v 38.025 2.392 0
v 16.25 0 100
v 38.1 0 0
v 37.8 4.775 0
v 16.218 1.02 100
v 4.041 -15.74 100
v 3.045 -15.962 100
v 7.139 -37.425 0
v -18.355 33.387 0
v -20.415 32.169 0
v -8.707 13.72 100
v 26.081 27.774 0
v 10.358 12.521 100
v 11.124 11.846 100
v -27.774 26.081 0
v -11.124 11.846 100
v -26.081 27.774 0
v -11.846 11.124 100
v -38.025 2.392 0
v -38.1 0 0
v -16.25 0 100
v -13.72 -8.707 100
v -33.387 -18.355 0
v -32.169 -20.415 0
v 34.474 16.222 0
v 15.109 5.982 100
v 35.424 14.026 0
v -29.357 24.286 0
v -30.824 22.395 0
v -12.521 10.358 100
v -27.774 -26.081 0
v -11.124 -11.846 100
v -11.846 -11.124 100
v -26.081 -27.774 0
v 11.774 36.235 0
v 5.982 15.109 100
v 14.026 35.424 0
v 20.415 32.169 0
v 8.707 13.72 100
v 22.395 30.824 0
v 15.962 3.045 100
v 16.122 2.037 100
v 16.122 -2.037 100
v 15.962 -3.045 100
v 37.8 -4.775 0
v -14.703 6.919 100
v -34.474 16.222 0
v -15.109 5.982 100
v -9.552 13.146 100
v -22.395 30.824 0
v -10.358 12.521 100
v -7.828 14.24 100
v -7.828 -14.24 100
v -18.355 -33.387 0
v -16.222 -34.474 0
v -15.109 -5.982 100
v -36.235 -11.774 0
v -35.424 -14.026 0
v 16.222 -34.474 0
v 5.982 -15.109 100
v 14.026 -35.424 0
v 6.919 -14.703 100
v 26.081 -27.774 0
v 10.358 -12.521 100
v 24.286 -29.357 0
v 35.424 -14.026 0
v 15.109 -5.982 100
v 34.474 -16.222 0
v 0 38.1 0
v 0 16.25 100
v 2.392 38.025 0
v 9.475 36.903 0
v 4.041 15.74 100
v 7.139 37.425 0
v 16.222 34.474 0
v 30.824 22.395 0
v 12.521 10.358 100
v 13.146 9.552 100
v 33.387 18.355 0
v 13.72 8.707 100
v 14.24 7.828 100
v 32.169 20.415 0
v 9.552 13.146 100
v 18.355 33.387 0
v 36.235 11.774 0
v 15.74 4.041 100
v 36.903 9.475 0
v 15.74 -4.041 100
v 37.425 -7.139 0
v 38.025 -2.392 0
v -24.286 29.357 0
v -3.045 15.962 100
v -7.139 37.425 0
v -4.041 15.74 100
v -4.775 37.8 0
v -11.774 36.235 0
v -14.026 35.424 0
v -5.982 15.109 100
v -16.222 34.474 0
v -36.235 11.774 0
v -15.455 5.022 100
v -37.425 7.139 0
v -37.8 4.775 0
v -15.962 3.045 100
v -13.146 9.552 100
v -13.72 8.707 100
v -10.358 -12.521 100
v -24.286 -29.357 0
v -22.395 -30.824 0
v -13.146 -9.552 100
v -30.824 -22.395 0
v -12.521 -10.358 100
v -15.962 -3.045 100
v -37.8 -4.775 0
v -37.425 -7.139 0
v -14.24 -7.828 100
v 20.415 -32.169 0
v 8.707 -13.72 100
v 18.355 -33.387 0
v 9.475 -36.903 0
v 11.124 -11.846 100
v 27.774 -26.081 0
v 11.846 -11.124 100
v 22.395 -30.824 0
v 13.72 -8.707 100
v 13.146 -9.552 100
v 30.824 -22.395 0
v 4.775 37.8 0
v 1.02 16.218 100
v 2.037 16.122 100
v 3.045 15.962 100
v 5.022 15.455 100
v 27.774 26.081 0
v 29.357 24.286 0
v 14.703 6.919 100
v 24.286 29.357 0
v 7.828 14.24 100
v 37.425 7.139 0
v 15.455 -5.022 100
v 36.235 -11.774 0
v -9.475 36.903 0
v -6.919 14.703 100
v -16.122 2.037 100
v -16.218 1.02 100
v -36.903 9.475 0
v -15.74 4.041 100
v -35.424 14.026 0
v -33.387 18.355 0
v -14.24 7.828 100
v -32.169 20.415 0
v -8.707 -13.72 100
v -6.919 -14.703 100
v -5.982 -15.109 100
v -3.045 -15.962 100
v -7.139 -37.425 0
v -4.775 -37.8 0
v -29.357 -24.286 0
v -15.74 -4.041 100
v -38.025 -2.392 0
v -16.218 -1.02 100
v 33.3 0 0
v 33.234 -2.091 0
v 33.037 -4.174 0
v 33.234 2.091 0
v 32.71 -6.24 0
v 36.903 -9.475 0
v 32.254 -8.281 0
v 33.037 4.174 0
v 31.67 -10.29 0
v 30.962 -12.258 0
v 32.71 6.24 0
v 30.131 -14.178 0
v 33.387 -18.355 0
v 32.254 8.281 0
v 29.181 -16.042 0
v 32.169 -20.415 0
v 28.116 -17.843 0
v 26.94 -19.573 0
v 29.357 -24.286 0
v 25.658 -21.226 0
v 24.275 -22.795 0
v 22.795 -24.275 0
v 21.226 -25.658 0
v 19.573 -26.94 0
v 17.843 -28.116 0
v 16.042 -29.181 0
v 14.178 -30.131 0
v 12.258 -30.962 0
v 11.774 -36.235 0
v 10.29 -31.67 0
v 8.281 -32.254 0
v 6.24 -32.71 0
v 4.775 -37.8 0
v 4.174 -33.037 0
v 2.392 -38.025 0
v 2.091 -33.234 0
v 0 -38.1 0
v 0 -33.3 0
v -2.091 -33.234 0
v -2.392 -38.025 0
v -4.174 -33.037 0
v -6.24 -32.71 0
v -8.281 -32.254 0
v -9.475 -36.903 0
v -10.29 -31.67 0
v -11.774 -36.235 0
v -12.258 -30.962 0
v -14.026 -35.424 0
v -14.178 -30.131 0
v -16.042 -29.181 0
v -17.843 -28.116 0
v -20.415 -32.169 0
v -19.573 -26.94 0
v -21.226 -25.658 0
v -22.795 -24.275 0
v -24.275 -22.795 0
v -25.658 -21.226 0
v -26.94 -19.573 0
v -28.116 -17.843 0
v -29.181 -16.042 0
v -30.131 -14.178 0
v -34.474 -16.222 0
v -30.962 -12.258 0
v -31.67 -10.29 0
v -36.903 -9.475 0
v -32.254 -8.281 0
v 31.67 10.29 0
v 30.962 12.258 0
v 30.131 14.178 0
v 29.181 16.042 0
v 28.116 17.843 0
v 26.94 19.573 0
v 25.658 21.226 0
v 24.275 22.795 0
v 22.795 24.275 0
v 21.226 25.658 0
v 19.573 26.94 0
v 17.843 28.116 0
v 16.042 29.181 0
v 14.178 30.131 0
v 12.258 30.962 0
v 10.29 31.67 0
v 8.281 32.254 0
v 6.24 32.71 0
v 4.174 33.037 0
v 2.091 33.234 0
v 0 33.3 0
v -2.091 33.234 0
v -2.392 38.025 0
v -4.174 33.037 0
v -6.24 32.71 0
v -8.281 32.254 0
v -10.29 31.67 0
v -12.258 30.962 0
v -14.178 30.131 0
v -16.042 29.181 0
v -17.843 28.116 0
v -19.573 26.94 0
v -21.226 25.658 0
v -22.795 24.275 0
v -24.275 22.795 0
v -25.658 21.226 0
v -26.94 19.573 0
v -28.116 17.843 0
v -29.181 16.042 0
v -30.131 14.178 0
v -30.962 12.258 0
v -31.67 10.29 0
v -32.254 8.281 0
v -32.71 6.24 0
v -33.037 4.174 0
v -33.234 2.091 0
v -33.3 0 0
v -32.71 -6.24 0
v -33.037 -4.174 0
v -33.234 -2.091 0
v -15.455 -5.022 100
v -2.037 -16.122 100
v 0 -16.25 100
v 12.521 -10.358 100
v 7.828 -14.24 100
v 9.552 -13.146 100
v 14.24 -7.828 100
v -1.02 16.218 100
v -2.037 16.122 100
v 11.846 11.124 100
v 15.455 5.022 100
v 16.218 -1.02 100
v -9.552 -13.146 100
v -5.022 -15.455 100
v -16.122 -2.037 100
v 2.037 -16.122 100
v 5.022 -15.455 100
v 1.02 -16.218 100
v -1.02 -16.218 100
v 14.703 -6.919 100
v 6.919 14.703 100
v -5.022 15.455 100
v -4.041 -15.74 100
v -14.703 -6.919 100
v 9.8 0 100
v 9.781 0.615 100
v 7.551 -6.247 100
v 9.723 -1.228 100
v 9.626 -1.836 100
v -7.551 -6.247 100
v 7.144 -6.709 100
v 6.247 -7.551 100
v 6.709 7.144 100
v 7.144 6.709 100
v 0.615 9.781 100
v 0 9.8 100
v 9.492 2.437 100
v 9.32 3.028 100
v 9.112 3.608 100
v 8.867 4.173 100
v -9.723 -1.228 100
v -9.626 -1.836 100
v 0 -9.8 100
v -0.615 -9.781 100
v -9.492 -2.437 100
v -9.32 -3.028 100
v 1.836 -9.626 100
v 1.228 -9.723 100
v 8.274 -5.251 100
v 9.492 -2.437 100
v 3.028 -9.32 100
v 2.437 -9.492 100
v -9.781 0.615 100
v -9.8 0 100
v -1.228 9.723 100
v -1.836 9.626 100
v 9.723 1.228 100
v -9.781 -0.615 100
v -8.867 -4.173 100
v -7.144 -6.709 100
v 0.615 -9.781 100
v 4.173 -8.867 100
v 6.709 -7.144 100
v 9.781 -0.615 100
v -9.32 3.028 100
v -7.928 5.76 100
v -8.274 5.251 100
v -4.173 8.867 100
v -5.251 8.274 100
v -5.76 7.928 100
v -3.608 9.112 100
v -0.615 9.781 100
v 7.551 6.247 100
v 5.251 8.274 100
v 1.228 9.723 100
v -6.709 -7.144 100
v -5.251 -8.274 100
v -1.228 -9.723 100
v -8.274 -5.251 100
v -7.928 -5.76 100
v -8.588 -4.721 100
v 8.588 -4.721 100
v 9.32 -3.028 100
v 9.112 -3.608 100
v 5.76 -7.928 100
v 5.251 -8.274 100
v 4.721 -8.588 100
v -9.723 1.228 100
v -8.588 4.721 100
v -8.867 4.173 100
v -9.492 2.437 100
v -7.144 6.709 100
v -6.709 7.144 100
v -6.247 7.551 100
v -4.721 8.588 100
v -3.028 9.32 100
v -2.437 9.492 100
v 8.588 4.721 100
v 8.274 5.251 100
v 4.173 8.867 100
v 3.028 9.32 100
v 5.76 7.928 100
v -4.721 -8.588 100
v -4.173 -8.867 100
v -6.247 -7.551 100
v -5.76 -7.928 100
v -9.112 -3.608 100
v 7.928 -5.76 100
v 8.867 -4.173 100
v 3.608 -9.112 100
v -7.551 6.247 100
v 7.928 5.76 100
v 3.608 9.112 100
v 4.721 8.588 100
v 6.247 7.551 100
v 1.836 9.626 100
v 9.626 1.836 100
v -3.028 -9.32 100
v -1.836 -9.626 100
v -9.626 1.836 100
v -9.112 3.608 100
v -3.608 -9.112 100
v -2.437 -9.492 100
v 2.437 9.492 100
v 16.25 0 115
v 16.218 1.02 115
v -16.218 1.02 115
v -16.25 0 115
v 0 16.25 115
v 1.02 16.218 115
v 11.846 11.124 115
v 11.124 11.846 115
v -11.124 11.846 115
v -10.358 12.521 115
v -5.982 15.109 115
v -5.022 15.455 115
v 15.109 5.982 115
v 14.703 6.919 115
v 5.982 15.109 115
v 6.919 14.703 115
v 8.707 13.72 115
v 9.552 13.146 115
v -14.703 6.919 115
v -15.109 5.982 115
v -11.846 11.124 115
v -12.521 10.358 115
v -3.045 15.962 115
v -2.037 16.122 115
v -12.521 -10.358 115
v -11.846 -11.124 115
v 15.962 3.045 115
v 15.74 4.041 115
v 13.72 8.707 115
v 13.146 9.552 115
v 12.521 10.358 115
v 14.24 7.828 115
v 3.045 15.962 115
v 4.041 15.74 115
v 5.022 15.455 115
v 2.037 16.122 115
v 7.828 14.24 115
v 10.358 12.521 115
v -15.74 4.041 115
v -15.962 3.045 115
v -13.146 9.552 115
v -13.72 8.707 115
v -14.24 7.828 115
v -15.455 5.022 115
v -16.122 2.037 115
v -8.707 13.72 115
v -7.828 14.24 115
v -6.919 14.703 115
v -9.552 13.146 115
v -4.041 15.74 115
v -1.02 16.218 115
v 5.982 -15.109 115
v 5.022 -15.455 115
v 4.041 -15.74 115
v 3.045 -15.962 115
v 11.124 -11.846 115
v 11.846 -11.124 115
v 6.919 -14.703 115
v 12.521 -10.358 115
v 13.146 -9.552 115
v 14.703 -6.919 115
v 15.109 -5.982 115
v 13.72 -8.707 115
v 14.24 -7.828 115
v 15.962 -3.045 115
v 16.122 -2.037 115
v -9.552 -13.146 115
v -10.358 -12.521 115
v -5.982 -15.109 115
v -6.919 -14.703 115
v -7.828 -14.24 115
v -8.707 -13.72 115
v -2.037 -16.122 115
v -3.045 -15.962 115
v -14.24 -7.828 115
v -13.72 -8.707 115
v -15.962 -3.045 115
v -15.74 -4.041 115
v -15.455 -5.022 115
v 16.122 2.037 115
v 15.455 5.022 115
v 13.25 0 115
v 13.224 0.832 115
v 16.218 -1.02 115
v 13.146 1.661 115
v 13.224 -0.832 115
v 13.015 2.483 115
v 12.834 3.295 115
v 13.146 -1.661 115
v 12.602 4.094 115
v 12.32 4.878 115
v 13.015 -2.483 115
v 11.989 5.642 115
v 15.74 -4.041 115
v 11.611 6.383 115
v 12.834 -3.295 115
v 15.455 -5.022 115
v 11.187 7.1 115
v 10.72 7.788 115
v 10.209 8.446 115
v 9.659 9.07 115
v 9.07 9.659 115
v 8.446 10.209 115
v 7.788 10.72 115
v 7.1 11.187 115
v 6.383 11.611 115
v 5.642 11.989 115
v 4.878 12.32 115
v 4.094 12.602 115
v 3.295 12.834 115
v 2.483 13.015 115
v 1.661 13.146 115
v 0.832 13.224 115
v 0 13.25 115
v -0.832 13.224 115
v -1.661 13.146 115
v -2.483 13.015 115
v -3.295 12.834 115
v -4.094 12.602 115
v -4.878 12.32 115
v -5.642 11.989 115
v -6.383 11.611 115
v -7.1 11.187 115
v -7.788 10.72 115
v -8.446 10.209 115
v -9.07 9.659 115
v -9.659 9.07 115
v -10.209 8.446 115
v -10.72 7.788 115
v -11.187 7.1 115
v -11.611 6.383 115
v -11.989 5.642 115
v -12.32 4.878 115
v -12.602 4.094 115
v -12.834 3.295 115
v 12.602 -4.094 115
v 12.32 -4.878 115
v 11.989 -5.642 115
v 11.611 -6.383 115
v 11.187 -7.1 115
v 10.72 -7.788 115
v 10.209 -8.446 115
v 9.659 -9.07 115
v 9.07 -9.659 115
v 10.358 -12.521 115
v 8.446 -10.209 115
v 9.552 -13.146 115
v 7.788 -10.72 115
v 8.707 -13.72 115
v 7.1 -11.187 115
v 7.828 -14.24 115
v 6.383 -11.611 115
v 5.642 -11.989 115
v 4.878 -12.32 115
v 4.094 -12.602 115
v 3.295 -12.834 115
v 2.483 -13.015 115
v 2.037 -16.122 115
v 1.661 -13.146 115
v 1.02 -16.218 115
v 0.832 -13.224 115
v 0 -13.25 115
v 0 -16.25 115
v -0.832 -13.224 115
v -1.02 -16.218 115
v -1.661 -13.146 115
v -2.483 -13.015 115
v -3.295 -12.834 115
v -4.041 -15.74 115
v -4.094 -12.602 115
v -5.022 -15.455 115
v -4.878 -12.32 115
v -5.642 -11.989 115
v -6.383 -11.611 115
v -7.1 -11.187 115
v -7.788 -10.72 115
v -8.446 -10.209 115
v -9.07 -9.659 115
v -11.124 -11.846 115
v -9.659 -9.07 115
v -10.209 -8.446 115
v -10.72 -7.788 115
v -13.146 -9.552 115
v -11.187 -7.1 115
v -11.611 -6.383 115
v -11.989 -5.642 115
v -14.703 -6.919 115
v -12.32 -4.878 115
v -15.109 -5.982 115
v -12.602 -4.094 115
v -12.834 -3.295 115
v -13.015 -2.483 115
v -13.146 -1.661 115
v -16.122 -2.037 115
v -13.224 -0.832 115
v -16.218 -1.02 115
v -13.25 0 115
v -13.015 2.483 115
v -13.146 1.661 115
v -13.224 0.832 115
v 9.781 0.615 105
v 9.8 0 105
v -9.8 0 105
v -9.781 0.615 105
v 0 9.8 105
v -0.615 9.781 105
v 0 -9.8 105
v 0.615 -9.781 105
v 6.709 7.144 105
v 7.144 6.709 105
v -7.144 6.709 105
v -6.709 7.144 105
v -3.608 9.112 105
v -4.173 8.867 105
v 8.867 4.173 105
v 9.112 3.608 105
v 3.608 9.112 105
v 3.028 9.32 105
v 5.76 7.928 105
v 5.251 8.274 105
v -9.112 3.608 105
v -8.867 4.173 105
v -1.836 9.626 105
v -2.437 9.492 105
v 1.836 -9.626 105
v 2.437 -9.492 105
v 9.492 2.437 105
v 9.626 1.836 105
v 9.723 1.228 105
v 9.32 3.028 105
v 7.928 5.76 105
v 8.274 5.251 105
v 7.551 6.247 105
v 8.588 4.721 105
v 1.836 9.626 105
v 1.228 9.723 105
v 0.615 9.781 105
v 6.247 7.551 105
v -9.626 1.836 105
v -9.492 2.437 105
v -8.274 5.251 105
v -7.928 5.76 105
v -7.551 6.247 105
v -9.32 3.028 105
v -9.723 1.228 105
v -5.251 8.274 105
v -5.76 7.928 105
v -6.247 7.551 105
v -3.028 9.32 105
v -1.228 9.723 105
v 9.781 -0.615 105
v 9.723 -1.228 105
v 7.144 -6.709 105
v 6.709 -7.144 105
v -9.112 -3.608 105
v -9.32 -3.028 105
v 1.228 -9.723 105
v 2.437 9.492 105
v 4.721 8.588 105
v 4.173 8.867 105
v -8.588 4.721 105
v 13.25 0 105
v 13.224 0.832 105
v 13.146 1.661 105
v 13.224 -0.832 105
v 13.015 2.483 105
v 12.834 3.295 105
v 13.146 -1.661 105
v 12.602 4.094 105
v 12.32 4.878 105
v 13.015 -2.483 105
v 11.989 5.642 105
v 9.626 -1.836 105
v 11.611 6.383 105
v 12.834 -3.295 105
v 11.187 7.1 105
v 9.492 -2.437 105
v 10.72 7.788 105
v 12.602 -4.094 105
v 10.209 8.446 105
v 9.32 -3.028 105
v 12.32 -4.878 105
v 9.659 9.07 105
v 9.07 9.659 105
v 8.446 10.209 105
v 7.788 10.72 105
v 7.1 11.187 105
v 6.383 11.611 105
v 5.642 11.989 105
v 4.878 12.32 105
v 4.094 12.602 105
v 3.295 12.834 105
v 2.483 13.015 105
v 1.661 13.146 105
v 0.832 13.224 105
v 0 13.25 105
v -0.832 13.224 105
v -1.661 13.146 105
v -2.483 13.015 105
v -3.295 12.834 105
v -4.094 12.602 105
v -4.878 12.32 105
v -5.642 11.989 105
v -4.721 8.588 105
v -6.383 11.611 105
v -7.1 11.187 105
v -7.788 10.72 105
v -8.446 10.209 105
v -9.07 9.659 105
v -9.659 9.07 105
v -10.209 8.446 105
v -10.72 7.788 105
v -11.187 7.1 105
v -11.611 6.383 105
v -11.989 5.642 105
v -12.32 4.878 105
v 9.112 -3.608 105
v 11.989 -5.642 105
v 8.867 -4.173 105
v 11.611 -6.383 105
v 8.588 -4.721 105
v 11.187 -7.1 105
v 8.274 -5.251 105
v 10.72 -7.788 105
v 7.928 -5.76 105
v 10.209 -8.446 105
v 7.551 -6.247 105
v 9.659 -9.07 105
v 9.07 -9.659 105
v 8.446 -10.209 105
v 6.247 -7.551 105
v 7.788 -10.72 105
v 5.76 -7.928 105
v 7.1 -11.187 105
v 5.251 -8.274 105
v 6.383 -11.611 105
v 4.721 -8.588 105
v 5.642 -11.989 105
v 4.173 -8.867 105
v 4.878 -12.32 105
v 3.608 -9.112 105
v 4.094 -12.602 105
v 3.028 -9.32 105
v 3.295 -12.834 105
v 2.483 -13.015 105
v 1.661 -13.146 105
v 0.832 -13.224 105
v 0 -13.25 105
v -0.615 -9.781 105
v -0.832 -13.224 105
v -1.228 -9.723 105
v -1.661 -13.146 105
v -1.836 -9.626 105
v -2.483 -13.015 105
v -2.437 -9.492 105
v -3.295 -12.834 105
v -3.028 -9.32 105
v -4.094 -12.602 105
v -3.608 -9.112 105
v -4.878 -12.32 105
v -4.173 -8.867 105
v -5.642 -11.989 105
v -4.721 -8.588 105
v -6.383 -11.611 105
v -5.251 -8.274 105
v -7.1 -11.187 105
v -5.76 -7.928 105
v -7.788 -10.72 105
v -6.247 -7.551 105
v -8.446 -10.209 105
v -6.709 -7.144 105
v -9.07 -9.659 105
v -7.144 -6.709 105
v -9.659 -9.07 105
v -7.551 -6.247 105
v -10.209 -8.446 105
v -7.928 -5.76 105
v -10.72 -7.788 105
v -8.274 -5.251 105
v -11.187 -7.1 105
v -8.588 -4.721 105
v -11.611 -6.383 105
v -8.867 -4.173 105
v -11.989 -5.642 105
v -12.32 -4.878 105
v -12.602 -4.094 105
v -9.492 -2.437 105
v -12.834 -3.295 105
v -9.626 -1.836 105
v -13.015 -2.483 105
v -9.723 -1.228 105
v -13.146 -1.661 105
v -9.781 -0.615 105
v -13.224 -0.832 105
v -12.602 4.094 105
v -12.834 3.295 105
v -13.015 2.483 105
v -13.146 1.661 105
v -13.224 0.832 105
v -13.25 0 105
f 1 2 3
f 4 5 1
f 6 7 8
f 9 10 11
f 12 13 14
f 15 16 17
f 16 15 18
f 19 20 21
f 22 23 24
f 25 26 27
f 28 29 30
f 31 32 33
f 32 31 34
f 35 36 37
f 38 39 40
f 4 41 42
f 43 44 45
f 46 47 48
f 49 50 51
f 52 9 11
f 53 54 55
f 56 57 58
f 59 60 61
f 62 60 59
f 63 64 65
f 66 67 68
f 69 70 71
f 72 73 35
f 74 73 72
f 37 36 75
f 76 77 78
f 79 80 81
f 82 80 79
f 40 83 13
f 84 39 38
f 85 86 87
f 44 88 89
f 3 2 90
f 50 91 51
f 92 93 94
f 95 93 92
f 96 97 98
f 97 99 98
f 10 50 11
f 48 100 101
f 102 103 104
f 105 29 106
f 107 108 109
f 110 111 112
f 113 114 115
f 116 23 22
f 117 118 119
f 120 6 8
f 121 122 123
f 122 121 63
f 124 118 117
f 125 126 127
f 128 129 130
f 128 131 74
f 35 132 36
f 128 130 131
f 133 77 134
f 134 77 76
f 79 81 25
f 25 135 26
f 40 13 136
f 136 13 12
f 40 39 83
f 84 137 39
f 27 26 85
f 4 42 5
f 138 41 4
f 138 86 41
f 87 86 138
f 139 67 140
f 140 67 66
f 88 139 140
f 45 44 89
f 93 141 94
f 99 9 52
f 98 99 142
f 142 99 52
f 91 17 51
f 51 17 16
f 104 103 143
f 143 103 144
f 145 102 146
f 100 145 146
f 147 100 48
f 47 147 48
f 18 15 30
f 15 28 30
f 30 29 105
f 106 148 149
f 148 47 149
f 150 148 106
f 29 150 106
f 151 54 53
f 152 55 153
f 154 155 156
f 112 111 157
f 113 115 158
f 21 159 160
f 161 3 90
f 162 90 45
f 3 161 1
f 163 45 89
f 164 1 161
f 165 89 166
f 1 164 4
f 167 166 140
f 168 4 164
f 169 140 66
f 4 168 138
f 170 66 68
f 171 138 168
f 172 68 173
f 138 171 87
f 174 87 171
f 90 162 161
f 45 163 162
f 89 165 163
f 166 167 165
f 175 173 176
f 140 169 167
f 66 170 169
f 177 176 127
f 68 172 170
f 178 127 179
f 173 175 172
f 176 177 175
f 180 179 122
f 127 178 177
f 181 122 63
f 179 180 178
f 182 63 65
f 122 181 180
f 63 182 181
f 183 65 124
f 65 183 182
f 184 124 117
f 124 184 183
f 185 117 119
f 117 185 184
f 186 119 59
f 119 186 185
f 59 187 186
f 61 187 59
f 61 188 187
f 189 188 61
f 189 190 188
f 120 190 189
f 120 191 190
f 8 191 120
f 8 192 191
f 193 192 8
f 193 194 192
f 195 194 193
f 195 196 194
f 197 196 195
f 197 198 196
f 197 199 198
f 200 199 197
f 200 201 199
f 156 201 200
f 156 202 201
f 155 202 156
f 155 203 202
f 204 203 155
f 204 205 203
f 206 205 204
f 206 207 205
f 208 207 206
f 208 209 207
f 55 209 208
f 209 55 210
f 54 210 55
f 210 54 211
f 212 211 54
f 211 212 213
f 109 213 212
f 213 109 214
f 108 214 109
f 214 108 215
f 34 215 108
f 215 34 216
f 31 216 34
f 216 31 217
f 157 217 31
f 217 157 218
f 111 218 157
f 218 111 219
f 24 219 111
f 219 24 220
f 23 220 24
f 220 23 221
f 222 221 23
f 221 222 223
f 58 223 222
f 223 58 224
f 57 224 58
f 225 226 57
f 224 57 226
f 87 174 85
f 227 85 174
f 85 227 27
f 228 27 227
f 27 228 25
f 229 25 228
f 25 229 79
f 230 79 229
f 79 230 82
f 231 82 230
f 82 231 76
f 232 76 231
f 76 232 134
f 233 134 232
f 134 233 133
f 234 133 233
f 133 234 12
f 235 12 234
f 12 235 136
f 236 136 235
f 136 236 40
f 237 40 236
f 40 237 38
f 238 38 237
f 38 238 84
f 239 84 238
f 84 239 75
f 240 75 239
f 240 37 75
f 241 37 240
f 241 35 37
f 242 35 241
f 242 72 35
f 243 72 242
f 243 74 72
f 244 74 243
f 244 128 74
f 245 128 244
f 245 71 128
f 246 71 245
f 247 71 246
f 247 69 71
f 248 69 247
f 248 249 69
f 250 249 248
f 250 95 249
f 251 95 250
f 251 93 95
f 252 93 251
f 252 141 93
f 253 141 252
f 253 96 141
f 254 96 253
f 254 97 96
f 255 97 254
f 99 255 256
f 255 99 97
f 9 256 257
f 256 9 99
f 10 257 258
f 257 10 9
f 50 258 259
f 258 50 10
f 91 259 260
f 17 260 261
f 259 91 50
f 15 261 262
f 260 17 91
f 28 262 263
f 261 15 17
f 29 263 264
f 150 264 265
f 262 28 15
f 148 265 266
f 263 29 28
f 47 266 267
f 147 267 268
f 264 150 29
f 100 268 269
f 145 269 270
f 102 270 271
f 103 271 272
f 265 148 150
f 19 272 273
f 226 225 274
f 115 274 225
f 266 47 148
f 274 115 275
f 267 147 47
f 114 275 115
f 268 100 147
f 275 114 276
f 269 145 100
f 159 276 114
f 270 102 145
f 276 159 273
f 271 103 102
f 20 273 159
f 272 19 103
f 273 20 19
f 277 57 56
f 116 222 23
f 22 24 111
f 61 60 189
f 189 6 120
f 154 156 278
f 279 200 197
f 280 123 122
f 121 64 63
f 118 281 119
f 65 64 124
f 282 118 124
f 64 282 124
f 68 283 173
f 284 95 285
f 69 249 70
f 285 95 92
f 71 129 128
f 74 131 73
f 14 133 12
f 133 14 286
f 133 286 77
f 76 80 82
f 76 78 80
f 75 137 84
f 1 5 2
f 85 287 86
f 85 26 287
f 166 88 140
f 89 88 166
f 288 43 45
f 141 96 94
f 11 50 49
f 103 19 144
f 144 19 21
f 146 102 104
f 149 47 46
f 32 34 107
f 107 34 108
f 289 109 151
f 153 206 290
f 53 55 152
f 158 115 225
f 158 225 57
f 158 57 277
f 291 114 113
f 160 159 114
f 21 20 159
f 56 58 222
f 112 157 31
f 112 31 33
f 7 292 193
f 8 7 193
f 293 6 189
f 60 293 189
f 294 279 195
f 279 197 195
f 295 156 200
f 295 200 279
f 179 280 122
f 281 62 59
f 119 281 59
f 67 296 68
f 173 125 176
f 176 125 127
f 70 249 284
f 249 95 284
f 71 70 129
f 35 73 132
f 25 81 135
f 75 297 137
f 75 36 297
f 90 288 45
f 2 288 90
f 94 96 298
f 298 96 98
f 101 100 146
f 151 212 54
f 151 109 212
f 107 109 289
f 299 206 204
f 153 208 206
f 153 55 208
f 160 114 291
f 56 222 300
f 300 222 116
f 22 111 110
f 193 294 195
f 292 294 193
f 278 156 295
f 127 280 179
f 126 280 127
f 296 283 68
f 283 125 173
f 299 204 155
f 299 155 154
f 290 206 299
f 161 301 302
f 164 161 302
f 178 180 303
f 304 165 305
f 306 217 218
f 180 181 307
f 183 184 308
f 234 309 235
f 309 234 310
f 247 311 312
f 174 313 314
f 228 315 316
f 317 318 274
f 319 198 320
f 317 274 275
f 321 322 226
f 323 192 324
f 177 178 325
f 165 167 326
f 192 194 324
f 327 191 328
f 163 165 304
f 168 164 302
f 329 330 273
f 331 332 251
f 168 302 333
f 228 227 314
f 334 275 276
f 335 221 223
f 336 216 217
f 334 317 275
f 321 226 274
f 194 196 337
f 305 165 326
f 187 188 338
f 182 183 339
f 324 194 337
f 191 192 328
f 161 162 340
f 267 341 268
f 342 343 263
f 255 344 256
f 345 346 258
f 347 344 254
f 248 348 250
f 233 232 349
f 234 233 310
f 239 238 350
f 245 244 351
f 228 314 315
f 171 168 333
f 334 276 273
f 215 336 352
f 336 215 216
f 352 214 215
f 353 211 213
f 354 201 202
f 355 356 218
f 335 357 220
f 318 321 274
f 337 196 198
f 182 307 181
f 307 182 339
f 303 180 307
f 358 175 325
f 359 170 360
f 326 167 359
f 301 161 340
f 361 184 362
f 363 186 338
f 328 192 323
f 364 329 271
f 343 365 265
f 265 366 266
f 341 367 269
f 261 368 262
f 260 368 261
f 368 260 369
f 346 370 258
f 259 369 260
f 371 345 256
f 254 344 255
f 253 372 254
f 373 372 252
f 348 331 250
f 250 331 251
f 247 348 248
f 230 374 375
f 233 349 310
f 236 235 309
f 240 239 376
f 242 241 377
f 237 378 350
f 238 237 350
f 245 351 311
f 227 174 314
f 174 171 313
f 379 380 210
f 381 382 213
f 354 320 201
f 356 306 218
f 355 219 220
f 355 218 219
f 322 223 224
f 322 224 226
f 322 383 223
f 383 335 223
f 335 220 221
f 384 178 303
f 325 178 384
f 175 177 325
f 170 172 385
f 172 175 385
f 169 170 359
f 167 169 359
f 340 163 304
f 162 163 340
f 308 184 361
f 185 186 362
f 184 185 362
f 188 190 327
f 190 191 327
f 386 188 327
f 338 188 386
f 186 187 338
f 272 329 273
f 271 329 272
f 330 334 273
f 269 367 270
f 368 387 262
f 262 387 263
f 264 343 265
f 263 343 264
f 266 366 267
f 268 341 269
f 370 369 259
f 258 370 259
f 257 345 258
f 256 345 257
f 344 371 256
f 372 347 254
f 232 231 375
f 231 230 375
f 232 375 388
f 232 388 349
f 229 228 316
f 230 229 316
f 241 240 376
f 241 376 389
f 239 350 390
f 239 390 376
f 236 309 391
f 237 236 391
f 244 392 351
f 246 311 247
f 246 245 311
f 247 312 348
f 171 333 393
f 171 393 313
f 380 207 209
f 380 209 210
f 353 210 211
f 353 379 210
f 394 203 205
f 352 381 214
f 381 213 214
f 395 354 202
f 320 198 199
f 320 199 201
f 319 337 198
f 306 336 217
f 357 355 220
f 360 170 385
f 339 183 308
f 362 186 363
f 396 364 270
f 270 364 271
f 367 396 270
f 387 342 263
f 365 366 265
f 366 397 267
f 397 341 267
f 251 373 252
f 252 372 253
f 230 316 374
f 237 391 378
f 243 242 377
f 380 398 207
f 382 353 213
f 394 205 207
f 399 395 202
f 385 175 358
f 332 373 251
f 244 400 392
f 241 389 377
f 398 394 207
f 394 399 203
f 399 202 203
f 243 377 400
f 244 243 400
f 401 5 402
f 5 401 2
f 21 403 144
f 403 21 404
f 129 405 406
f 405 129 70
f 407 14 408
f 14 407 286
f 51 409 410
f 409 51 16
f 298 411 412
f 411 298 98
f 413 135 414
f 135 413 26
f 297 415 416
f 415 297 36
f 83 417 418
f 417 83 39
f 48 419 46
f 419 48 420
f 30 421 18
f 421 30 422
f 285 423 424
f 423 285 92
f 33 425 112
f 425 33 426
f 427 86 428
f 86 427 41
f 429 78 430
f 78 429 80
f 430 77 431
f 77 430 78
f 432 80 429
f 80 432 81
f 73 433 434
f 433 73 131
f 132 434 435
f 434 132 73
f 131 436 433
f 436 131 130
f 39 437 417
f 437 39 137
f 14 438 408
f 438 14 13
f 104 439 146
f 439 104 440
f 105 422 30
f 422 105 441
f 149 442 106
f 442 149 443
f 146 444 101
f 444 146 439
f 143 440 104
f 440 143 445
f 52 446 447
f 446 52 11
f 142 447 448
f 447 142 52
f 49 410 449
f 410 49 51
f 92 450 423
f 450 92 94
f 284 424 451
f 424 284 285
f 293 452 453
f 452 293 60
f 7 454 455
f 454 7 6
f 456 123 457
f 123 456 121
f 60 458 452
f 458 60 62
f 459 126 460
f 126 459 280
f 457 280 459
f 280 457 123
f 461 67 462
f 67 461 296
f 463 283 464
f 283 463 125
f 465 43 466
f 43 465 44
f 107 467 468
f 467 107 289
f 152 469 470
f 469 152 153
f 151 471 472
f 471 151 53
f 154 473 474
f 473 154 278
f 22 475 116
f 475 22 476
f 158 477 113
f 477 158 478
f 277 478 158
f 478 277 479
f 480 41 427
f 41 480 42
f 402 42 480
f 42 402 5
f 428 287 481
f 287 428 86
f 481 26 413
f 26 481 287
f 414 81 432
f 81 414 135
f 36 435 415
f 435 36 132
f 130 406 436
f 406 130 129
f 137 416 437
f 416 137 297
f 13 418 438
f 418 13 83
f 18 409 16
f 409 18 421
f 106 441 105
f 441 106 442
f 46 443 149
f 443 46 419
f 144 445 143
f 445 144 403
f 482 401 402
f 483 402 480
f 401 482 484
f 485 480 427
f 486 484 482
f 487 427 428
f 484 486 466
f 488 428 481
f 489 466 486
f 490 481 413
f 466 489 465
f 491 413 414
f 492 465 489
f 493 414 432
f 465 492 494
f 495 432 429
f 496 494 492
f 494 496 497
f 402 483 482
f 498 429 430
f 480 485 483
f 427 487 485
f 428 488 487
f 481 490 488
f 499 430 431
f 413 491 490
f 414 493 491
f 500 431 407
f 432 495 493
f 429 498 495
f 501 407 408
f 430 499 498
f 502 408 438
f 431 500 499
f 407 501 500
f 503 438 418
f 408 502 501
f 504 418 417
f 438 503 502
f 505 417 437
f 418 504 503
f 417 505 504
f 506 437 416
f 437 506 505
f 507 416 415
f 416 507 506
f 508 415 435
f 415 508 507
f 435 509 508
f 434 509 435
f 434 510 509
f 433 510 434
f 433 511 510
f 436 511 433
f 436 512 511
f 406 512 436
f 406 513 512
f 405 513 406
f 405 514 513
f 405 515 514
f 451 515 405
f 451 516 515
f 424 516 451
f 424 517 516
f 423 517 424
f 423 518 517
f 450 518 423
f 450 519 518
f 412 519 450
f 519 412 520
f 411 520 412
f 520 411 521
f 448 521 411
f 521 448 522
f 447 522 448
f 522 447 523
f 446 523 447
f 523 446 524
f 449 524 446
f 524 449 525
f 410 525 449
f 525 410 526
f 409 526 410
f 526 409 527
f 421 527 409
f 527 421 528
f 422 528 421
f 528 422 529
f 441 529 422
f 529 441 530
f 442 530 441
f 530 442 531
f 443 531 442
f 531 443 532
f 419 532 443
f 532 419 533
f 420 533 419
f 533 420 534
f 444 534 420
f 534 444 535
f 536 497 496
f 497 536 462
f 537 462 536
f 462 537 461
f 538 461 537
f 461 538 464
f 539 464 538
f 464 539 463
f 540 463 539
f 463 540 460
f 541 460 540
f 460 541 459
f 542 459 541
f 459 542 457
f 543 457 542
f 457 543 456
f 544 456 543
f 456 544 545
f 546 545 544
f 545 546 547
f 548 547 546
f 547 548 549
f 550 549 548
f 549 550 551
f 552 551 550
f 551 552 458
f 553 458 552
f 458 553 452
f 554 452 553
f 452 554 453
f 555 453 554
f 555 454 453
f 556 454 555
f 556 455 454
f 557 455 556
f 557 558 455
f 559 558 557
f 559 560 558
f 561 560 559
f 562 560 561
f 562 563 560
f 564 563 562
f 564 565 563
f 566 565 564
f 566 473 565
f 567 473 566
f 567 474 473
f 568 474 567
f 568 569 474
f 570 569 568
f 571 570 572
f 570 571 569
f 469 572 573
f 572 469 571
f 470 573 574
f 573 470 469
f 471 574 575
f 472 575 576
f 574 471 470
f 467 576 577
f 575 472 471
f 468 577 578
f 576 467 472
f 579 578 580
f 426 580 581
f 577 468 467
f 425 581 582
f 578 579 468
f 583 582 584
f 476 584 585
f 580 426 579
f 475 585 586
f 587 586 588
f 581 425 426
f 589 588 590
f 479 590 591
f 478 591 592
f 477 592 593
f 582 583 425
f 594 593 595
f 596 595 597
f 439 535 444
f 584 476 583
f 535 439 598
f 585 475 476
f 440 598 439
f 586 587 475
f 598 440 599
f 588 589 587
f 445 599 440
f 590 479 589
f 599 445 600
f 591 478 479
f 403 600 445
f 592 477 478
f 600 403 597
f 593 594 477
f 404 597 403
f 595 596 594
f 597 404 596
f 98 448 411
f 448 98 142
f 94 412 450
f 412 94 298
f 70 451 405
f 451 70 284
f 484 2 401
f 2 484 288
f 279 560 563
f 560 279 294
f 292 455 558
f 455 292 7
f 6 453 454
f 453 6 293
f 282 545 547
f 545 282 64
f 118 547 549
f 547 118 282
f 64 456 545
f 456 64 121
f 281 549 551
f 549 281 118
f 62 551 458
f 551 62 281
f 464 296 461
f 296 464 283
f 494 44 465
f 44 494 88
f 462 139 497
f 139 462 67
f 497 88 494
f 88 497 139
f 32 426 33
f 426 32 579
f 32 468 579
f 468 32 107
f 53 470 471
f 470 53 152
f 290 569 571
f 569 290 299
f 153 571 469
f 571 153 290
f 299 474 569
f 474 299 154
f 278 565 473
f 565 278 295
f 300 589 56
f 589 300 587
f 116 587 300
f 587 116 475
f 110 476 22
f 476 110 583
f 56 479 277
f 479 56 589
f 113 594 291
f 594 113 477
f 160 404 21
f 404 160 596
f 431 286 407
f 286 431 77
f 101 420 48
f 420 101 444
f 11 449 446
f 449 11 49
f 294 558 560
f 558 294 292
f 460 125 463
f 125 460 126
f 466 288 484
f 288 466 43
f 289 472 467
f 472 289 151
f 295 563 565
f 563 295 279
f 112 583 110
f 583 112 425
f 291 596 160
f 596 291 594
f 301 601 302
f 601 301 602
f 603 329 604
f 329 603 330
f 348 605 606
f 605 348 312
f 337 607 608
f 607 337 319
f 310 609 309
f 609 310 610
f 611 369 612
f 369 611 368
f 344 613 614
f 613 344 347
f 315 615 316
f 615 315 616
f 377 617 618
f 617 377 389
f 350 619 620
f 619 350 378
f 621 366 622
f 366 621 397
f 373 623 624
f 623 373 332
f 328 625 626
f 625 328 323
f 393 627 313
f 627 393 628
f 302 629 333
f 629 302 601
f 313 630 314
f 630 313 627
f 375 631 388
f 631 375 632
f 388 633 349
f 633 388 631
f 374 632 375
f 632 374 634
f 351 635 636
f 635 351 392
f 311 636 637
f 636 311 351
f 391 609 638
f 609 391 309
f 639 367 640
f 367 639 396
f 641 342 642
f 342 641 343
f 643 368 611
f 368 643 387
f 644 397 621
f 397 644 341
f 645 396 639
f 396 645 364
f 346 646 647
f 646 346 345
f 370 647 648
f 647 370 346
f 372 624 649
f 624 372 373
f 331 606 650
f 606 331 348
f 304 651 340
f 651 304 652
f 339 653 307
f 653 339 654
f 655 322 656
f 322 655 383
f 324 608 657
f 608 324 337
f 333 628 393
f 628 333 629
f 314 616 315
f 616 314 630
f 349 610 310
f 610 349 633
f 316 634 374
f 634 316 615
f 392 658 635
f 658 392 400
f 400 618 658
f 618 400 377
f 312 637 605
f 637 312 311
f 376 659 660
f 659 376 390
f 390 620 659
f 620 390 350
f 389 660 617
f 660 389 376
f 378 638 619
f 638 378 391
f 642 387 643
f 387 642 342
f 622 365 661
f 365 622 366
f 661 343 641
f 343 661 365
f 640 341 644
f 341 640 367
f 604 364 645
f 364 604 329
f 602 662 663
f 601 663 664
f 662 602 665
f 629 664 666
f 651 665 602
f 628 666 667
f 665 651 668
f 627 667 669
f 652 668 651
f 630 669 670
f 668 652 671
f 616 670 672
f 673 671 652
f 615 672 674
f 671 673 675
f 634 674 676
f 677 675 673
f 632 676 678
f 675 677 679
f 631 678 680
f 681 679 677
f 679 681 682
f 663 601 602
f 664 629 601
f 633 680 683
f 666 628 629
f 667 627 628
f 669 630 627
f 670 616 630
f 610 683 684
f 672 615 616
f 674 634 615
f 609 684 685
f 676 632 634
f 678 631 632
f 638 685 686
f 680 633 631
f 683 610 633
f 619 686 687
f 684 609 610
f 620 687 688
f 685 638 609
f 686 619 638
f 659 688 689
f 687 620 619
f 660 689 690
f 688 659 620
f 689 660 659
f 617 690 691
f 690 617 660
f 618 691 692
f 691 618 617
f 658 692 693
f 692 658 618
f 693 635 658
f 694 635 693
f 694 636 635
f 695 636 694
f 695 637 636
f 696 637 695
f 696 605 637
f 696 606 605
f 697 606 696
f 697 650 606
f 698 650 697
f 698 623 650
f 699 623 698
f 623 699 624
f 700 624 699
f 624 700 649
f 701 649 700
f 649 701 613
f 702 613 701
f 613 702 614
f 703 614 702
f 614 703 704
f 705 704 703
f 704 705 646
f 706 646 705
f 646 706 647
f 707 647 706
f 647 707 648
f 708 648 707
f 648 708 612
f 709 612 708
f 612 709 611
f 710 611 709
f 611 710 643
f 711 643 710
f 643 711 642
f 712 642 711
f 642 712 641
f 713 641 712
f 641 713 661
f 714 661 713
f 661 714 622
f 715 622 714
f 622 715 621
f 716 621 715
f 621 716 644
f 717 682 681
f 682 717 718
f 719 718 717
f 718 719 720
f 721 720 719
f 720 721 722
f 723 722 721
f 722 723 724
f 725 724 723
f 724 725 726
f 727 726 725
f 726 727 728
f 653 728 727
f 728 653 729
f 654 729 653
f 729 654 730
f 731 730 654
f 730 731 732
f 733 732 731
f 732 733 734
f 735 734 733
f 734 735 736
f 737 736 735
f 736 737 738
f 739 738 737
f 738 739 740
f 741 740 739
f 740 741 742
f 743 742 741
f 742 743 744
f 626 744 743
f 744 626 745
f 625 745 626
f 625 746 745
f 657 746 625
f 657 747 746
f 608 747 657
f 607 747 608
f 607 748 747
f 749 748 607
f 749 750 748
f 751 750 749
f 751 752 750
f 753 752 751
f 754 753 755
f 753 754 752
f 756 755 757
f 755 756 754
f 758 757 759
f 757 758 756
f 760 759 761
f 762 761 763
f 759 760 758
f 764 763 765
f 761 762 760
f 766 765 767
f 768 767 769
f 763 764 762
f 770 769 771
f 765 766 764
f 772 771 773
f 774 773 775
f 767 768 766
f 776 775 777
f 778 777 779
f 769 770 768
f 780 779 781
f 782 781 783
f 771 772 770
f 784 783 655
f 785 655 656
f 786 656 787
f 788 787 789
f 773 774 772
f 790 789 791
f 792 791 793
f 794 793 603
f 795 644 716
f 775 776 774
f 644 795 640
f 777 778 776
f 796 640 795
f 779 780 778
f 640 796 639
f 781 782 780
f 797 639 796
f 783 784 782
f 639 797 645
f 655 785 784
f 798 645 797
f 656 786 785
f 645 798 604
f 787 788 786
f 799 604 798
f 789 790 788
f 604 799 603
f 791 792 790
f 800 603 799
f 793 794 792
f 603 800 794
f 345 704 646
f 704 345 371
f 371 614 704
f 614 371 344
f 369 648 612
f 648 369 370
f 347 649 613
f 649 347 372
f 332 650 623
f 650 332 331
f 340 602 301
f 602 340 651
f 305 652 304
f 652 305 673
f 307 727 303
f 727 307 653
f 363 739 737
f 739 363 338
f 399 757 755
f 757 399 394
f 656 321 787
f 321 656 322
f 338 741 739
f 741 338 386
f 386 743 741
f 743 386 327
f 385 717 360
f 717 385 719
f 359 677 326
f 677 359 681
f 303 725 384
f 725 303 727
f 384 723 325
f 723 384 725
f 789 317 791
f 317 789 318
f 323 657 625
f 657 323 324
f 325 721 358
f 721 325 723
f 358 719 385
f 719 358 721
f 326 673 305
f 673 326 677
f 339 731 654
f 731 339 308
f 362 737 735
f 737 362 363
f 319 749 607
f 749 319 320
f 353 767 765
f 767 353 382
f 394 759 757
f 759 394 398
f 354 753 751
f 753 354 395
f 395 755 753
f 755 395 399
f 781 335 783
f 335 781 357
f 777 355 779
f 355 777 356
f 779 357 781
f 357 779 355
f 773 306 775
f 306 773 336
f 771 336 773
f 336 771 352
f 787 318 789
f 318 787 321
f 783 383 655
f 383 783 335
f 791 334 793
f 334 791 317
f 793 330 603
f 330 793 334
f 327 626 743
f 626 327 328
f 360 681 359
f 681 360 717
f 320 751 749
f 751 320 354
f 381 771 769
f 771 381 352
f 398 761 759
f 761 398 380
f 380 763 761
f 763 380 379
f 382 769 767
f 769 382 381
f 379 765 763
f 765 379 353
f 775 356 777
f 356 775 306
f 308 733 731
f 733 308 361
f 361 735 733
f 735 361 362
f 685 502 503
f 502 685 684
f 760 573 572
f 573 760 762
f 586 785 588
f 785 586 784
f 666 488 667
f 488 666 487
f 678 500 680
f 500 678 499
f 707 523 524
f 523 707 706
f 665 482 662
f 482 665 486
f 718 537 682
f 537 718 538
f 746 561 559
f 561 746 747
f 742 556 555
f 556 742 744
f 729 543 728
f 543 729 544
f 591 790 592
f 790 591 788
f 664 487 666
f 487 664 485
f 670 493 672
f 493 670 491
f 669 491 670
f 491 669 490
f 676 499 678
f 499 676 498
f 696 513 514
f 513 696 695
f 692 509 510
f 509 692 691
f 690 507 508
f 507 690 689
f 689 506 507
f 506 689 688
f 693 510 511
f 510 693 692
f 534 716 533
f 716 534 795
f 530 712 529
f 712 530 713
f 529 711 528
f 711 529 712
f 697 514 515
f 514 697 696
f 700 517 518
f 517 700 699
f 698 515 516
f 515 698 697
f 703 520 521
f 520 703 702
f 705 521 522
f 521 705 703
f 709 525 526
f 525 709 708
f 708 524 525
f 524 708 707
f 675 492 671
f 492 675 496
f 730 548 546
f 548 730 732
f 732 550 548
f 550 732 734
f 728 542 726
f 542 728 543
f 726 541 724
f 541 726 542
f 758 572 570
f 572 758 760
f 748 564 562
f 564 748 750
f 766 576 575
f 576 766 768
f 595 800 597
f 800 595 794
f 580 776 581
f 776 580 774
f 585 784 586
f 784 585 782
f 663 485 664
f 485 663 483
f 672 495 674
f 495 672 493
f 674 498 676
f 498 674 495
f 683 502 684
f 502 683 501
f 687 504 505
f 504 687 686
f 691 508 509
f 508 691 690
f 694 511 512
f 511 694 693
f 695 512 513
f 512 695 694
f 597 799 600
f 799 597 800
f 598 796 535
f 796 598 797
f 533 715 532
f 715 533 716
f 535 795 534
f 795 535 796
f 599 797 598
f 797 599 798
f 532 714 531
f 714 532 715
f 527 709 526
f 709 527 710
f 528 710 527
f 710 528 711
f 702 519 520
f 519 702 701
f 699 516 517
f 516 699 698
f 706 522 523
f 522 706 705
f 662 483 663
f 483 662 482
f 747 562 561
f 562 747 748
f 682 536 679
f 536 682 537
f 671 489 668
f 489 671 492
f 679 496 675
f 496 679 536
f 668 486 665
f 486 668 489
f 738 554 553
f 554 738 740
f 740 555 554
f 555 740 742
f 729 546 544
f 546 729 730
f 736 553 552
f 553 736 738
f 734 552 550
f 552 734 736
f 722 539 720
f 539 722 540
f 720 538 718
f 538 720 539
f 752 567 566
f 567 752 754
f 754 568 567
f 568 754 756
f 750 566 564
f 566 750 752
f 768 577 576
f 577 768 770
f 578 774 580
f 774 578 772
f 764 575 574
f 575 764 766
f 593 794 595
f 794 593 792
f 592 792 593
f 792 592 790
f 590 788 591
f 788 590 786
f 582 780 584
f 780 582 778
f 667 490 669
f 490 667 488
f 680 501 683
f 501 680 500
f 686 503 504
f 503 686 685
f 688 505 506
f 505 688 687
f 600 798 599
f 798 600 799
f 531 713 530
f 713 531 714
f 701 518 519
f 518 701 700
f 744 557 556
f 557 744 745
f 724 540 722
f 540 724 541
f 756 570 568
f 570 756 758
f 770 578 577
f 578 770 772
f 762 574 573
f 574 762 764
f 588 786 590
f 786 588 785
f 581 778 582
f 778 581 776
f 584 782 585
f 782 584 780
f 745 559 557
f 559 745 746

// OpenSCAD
//fn=numb of fragments; fa=min angle; fs=min size

$fn=100;
$fa=12;
$fs=2;

Are=35.1;
Ari=33.3;
Hae=10;
Hai=5;
AR=38.1;
Har=Hae+Hai;


Tre=13.25;
Tri=9.8;
RT=16.25;
Hti=5;
Hte=10;
Hrt=15;

Lt=100;

//Barrido
difference(){
    cylinder(Lt,AR,RT,center=false);
    cylinder(Lt,Ari,Tri,center=false);
}

//Acoplamiento Tubería

difference(){
    translate([0,0,Lt])cylinder(Hrt,RT,RT,center=false);
    translate([0,0,Lt])cylinder(Hti,Tri,Tri,center=false);
    translate([0,0,Lt+Hti])cylinder(Hte,Tre,Tre,center=false);
}
